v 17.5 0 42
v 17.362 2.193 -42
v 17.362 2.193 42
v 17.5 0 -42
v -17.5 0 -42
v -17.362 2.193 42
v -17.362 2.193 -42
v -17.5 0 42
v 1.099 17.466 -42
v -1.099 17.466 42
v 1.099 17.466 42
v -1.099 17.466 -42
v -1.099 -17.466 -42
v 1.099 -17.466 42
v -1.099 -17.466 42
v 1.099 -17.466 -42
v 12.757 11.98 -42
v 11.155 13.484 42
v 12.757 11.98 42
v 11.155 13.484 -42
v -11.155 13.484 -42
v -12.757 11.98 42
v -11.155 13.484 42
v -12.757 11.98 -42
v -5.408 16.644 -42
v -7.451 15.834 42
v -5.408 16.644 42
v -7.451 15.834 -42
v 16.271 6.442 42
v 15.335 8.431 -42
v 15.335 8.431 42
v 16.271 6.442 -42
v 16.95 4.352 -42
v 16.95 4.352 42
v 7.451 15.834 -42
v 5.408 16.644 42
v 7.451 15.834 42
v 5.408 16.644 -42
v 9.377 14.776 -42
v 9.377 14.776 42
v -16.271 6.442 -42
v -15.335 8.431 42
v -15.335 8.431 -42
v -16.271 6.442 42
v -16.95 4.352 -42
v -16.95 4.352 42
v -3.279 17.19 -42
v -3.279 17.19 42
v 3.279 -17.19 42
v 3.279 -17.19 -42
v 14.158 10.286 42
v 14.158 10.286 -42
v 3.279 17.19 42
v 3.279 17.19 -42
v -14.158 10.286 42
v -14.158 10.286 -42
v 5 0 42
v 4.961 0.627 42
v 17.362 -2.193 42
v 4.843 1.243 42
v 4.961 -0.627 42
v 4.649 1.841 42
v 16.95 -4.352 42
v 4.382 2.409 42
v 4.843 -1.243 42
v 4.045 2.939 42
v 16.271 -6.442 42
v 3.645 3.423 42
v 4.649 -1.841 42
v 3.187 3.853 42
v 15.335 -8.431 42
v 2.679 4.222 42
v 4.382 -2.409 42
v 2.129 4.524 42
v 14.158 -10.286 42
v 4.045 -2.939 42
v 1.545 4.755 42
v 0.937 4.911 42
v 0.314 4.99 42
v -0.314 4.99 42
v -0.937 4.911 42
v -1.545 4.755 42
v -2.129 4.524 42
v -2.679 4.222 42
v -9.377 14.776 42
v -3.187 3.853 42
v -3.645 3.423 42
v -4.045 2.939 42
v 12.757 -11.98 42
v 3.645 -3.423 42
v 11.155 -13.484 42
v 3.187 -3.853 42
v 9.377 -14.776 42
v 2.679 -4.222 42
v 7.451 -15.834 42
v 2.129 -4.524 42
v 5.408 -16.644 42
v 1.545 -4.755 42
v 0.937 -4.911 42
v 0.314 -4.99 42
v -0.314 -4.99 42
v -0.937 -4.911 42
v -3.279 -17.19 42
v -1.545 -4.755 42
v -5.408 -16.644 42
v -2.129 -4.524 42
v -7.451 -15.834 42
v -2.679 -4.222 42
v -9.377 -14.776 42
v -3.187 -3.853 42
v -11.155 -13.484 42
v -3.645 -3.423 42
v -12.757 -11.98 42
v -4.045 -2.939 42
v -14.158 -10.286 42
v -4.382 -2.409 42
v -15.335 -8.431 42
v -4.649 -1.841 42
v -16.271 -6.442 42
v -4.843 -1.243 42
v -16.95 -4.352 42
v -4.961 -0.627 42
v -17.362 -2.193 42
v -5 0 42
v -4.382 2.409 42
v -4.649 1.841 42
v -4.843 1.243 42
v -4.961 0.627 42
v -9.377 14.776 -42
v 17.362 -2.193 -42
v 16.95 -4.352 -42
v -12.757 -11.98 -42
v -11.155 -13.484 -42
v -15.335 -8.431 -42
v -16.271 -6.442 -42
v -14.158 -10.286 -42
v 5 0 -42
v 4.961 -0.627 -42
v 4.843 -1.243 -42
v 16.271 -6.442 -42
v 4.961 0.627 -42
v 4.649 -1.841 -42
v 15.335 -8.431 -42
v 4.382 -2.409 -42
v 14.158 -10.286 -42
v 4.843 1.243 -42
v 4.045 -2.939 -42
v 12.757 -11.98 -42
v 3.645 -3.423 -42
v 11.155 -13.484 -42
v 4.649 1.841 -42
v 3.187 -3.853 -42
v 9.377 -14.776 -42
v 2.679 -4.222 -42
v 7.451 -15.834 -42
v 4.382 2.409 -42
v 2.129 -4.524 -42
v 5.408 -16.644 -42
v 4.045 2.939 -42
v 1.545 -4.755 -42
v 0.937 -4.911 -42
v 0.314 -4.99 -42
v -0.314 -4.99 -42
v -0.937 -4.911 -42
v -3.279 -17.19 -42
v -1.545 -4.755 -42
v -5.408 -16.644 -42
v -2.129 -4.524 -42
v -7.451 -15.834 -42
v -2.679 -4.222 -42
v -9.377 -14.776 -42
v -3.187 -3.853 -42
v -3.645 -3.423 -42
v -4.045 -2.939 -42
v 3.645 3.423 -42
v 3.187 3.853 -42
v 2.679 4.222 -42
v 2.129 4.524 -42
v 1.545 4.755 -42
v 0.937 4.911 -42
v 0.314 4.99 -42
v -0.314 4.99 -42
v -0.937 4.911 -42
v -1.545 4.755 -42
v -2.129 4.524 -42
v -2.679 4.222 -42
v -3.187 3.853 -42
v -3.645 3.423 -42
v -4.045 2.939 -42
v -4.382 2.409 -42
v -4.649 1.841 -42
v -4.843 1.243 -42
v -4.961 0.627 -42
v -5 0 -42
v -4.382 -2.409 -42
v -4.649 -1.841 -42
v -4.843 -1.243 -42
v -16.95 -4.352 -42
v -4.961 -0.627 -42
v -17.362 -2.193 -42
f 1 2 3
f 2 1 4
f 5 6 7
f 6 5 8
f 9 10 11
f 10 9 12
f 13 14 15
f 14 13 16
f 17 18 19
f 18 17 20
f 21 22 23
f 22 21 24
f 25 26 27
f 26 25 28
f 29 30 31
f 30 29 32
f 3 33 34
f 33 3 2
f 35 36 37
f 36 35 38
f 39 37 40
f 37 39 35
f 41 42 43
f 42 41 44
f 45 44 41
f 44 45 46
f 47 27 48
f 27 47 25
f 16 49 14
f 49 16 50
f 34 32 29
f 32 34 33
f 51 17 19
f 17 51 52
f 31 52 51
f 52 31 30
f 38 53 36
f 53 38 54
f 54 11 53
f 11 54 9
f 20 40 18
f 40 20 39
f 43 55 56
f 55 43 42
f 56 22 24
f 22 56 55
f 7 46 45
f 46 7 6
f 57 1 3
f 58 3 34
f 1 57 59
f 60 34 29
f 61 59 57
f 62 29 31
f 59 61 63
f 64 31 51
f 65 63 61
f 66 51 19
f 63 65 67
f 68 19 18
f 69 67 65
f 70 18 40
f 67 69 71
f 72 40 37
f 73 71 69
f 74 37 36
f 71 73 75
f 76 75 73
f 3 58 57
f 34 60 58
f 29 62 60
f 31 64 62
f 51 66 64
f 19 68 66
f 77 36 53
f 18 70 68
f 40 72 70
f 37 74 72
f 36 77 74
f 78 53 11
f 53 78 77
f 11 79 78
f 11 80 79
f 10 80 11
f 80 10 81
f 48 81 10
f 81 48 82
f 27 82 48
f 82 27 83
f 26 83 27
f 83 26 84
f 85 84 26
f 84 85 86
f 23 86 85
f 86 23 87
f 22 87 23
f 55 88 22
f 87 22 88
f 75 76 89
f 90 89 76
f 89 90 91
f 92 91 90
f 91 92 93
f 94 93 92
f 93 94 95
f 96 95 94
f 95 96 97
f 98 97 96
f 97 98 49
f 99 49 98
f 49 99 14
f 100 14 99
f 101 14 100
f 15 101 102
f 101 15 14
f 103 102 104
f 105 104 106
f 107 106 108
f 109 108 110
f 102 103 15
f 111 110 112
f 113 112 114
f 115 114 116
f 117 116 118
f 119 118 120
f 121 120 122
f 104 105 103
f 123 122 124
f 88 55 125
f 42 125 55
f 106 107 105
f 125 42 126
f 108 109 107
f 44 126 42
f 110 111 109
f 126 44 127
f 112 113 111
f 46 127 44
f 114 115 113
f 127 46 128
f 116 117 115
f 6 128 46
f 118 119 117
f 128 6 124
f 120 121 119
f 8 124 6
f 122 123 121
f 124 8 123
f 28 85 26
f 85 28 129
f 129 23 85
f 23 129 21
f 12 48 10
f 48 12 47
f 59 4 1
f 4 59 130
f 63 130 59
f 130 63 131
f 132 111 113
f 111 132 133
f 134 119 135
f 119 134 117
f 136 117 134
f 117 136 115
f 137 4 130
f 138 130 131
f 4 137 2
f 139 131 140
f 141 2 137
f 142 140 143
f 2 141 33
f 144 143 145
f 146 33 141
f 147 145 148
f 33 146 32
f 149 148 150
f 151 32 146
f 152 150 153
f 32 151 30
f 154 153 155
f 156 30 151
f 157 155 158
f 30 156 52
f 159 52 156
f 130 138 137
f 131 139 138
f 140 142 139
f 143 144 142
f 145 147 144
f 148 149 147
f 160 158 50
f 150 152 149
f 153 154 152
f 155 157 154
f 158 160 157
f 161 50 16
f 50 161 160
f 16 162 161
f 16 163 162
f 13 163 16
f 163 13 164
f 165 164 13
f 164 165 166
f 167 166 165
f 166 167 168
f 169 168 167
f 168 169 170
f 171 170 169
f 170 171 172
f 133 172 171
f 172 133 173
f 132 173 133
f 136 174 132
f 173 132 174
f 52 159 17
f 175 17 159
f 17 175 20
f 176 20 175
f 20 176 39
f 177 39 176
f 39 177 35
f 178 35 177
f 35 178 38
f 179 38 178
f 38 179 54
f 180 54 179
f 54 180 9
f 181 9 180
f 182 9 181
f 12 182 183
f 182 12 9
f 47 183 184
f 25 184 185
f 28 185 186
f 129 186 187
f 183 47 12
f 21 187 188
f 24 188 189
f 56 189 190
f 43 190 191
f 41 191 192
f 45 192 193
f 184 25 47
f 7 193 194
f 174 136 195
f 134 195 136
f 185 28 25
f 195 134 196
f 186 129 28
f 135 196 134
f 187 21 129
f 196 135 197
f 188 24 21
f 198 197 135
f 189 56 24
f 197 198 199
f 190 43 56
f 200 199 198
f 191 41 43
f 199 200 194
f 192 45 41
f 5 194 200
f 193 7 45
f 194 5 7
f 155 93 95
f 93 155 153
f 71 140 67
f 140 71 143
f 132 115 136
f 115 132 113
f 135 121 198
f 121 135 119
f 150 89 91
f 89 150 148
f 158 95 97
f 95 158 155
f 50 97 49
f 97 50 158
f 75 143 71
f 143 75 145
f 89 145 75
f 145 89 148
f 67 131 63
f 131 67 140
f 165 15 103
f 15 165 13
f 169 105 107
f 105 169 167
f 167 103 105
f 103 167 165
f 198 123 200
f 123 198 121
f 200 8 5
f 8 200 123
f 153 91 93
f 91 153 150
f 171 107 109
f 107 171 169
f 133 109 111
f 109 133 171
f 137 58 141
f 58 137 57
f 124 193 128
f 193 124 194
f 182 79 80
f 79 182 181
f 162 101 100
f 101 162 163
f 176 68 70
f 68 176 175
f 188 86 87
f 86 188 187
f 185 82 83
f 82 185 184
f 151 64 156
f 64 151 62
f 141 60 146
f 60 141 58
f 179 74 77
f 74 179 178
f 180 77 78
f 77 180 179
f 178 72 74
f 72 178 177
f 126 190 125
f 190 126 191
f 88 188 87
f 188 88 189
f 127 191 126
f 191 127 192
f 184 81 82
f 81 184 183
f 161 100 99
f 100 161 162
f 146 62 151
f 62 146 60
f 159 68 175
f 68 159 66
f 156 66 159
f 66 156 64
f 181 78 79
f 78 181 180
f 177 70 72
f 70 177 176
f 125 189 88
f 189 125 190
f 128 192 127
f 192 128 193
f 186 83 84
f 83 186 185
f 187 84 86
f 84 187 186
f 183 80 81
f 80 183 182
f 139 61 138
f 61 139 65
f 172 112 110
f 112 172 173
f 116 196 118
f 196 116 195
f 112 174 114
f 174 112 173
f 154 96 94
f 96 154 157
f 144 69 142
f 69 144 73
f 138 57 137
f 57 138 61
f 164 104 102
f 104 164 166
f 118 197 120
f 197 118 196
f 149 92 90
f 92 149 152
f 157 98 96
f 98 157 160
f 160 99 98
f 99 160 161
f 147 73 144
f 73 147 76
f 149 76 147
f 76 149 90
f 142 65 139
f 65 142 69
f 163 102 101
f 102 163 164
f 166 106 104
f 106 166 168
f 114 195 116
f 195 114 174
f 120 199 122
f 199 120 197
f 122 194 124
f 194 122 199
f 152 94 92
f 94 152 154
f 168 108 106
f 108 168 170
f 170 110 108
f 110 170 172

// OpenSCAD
$fn = 50;


difference() {
	union() {
		translate(v = [0, 0, -42.0000000000]) {
			cylinder(h = 84, r = 17.5000000000);
		}
	}
	union() {
		translate(v = [0, 0, -100.0000000000]) {
			cylinder(h = 200, r = 5);
		}
	}
}
